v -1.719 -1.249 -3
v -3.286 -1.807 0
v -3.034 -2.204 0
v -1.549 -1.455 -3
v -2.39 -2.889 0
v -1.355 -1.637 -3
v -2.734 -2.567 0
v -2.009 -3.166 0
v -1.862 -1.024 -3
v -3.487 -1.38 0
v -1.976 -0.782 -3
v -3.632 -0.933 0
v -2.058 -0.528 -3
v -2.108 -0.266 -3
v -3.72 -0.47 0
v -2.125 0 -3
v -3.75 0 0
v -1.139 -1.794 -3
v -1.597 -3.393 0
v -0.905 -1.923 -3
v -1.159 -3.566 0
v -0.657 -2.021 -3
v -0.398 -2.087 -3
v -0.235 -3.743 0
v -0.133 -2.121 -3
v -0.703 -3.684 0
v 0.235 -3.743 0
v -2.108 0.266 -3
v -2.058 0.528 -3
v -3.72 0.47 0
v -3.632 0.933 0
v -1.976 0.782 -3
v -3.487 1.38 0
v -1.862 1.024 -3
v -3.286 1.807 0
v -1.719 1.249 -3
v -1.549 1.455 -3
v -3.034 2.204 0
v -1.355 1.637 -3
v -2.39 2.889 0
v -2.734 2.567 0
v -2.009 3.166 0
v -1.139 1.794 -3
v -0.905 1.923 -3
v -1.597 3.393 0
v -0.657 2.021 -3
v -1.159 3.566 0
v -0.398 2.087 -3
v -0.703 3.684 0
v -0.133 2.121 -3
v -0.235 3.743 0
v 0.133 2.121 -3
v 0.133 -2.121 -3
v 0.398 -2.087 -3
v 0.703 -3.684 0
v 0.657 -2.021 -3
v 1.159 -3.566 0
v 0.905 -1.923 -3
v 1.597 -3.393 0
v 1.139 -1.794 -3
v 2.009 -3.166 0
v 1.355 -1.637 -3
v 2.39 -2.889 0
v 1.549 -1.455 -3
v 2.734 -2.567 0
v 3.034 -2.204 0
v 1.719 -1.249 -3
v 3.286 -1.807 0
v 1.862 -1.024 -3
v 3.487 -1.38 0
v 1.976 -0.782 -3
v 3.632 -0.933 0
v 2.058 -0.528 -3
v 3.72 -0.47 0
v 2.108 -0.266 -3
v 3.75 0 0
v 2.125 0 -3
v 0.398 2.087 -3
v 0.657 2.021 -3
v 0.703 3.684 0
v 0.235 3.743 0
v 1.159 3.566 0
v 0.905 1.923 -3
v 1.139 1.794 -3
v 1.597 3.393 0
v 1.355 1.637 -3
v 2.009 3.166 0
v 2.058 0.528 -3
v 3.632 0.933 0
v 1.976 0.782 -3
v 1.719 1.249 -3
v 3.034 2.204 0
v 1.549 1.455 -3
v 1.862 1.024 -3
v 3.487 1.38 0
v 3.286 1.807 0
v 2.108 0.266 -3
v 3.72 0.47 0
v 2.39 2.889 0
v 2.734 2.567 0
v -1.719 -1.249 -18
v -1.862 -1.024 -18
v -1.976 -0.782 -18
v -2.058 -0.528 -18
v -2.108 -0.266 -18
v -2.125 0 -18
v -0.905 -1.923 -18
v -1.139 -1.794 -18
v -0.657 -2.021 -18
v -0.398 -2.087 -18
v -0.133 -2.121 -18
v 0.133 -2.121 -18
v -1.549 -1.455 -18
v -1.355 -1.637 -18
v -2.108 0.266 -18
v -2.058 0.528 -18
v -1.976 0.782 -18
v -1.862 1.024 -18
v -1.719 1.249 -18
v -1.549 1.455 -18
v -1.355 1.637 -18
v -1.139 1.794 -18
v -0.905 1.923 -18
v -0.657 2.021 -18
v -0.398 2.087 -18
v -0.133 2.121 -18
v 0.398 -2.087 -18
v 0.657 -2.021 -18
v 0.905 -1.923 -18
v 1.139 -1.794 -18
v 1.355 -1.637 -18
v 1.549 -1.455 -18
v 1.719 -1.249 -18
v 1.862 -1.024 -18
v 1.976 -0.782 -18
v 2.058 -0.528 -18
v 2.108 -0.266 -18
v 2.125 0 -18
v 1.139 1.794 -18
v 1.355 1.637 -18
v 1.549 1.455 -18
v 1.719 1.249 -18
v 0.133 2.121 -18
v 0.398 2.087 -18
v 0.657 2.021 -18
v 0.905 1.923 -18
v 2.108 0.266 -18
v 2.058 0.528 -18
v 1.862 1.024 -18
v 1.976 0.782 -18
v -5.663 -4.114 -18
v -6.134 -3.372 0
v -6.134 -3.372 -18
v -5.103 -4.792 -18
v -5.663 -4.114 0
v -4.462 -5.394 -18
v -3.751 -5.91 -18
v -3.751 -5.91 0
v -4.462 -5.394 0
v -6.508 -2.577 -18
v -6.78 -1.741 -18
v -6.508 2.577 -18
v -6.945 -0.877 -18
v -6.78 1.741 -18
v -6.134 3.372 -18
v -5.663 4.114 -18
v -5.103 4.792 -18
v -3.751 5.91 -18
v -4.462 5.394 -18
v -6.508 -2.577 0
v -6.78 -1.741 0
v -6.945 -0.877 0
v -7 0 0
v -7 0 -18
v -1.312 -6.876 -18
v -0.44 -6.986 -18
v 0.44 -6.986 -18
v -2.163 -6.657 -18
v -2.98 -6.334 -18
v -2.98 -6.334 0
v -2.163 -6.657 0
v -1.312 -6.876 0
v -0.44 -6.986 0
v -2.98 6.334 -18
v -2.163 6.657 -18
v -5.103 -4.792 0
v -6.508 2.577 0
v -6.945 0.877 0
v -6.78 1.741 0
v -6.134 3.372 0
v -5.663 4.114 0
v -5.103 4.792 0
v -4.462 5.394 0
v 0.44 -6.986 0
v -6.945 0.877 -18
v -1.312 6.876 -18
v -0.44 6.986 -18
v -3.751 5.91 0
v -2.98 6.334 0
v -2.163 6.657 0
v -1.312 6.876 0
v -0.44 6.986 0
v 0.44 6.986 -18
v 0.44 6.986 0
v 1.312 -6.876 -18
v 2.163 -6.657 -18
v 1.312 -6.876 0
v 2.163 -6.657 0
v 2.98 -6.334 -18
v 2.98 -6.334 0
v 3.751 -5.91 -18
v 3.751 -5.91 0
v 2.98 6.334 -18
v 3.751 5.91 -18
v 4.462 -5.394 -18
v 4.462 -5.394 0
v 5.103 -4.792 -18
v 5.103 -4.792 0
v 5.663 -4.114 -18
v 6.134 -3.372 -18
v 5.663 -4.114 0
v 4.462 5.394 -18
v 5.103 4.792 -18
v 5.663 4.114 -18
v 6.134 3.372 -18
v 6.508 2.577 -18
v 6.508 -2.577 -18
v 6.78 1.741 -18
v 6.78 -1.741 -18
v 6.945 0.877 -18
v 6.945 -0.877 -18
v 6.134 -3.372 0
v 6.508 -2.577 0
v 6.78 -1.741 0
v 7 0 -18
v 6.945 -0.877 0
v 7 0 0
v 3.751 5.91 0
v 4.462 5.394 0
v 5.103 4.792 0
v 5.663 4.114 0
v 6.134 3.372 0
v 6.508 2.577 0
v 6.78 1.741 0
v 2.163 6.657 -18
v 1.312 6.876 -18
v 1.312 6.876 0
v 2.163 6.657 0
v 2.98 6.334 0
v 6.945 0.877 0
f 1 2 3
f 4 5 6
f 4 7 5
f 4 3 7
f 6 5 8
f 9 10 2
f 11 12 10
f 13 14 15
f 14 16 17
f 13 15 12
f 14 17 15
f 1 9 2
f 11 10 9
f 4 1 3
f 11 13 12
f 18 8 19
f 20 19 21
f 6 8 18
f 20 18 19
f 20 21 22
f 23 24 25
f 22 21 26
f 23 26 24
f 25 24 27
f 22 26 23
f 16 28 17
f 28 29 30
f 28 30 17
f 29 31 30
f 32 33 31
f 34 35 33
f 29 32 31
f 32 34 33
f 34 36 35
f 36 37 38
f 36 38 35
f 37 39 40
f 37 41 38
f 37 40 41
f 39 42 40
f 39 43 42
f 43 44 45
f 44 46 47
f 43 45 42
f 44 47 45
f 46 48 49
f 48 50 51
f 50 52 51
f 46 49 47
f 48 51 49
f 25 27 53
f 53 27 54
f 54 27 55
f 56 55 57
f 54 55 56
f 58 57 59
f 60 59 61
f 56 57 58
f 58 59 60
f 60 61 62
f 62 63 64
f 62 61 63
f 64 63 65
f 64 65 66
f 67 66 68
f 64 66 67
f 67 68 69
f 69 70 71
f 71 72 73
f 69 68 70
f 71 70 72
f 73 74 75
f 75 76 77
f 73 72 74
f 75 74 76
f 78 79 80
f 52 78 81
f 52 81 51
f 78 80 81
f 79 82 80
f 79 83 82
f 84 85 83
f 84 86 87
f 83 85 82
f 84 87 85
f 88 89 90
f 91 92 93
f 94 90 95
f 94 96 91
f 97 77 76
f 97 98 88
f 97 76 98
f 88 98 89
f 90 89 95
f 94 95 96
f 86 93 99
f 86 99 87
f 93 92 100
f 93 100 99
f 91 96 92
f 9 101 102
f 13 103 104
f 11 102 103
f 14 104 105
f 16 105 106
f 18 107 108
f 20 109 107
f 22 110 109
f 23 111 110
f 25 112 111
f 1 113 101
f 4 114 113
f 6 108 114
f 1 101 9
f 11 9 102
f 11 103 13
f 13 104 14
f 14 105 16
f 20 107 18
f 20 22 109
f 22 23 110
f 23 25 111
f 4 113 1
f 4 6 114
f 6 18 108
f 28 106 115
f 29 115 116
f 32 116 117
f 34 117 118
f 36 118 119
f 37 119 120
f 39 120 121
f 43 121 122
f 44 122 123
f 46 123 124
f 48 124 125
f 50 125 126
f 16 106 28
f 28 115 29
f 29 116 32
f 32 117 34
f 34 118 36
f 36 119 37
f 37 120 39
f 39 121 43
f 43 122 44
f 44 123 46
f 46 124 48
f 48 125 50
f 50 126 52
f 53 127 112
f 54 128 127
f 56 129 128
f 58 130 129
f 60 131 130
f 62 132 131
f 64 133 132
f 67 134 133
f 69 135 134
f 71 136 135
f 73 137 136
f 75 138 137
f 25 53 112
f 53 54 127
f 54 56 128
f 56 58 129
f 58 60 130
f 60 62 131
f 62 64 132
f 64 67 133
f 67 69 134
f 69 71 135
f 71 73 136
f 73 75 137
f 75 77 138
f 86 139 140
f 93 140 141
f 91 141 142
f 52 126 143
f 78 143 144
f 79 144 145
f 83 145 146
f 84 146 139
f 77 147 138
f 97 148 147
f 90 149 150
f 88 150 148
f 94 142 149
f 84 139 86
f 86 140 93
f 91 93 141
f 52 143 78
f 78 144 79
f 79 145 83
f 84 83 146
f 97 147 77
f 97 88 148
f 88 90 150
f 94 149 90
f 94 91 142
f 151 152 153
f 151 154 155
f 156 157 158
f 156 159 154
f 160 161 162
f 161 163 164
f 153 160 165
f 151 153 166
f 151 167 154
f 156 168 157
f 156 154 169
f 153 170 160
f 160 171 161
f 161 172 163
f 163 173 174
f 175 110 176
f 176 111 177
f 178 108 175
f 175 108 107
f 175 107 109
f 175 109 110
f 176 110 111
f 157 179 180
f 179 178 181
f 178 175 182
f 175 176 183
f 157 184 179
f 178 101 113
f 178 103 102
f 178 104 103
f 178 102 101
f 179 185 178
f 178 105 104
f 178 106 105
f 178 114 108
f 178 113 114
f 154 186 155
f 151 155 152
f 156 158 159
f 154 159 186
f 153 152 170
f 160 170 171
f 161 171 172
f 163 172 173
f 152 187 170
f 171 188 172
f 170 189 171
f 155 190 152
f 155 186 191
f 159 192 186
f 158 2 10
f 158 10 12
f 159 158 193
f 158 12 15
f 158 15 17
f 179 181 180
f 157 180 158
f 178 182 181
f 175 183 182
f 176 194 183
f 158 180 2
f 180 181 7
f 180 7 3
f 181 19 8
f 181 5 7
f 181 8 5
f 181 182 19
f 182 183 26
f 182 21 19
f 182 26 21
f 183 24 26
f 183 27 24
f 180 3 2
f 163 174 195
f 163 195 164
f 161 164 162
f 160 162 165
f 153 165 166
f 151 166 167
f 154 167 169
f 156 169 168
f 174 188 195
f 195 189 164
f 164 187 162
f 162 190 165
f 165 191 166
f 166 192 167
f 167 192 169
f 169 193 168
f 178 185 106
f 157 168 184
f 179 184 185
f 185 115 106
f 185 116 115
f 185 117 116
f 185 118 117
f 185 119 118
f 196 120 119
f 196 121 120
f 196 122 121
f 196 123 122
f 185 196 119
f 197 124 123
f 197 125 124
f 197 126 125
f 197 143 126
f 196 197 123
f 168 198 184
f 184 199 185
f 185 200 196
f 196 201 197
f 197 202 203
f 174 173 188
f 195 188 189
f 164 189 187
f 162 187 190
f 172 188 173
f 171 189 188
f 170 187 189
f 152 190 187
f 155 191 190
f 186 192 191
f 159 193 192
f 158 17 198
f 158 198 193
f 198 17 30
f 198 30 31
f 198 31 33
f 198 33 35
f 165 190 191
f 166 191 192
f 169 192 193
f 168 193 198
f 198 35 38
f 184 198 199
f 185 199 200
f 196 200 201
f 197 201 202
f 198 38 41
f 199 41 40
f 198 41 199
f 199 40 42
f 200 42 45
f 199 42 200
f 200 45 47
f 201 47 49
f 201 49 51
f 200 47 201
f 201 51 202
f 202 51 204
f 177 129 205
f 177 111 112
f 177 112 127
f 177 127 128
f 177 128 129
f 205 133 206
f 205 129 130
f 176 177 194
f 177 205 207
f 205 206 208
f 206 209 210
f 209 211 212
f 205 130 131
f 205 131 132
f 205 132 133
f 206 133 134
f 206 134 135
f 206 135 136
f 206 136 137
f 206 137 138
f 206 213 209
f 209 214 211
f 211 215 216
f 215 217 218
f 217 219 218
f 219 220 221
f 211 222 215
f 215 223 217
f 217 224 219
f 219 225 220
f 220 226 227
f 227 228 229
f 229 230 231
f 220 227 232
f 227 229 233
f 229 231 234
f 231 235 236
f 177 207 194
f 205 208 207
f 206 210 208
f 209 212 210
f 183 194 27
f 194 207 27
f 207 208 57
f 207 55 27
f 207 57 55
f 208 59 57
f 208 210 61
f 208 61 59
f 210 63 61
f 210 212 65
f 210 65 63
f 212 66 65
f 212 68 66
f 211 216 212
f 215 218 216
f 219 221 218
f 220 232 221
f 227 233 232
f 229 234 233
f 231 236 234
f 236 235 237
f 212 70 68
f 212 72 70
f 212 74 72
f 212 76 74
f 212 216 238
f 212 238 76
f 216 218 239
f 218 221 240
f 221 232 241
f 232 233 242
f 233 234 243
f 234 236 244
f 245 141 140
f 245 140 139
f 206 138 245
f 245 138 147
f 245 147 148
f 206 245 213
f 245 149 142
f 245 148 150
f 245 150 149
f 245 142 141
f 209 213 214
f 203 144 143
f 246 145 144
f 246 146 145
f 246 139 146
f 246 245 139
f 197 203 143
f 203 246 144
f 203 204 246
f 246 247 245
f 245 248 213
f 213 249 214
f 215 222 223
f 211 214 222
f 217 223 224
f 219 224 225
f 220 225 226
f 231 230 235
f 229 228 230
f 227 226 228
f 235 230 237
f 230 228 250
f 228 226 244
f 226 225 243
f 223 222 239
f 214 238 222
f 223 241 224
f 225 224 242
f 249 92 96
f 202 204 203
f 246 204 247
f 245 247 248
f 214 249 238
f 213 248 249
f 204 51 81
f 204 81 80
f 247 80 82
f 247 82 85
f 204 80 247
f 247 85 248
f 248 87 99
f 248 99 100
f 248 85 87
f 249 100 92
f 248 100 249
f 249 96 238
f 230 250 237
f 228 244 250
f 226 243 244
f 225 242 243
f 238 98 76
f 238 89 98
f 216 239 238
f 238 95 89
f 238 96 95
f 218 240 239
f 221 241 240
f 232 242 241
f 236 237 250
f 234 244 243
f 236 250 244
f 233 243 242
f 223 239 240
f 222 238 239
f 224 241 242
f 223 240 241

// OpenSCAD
$fn = 50;

difference() {
	union() {
		translate(v = [0, 0, -18.0]) {
			cylinder(h = 18, r = 7.0);
		}
	}
	union() {
		translate(v = [0, 0, 0]) {
			rotate(a = [0, 0, 0]) {
				difference() {
					union() {
						translate(v = [0, 0, -21.0]) {
							cylinder(h = 21, r = 2.0);
						}
						translate(v = [0, 0, -3]) {
							cylinder(h = 3, r1 = 2.125, r2 = 3.75);
						}
						translate(v = [0, 0, -21.0]) {
							cylinder(h = 21, r = 2.125);
						}
						translate(v = [0, 0, -21.0]) {
							cylinder(h = 21, r = 2.0);
						}
					}
					union();
				}
			}
		}
	}
}
